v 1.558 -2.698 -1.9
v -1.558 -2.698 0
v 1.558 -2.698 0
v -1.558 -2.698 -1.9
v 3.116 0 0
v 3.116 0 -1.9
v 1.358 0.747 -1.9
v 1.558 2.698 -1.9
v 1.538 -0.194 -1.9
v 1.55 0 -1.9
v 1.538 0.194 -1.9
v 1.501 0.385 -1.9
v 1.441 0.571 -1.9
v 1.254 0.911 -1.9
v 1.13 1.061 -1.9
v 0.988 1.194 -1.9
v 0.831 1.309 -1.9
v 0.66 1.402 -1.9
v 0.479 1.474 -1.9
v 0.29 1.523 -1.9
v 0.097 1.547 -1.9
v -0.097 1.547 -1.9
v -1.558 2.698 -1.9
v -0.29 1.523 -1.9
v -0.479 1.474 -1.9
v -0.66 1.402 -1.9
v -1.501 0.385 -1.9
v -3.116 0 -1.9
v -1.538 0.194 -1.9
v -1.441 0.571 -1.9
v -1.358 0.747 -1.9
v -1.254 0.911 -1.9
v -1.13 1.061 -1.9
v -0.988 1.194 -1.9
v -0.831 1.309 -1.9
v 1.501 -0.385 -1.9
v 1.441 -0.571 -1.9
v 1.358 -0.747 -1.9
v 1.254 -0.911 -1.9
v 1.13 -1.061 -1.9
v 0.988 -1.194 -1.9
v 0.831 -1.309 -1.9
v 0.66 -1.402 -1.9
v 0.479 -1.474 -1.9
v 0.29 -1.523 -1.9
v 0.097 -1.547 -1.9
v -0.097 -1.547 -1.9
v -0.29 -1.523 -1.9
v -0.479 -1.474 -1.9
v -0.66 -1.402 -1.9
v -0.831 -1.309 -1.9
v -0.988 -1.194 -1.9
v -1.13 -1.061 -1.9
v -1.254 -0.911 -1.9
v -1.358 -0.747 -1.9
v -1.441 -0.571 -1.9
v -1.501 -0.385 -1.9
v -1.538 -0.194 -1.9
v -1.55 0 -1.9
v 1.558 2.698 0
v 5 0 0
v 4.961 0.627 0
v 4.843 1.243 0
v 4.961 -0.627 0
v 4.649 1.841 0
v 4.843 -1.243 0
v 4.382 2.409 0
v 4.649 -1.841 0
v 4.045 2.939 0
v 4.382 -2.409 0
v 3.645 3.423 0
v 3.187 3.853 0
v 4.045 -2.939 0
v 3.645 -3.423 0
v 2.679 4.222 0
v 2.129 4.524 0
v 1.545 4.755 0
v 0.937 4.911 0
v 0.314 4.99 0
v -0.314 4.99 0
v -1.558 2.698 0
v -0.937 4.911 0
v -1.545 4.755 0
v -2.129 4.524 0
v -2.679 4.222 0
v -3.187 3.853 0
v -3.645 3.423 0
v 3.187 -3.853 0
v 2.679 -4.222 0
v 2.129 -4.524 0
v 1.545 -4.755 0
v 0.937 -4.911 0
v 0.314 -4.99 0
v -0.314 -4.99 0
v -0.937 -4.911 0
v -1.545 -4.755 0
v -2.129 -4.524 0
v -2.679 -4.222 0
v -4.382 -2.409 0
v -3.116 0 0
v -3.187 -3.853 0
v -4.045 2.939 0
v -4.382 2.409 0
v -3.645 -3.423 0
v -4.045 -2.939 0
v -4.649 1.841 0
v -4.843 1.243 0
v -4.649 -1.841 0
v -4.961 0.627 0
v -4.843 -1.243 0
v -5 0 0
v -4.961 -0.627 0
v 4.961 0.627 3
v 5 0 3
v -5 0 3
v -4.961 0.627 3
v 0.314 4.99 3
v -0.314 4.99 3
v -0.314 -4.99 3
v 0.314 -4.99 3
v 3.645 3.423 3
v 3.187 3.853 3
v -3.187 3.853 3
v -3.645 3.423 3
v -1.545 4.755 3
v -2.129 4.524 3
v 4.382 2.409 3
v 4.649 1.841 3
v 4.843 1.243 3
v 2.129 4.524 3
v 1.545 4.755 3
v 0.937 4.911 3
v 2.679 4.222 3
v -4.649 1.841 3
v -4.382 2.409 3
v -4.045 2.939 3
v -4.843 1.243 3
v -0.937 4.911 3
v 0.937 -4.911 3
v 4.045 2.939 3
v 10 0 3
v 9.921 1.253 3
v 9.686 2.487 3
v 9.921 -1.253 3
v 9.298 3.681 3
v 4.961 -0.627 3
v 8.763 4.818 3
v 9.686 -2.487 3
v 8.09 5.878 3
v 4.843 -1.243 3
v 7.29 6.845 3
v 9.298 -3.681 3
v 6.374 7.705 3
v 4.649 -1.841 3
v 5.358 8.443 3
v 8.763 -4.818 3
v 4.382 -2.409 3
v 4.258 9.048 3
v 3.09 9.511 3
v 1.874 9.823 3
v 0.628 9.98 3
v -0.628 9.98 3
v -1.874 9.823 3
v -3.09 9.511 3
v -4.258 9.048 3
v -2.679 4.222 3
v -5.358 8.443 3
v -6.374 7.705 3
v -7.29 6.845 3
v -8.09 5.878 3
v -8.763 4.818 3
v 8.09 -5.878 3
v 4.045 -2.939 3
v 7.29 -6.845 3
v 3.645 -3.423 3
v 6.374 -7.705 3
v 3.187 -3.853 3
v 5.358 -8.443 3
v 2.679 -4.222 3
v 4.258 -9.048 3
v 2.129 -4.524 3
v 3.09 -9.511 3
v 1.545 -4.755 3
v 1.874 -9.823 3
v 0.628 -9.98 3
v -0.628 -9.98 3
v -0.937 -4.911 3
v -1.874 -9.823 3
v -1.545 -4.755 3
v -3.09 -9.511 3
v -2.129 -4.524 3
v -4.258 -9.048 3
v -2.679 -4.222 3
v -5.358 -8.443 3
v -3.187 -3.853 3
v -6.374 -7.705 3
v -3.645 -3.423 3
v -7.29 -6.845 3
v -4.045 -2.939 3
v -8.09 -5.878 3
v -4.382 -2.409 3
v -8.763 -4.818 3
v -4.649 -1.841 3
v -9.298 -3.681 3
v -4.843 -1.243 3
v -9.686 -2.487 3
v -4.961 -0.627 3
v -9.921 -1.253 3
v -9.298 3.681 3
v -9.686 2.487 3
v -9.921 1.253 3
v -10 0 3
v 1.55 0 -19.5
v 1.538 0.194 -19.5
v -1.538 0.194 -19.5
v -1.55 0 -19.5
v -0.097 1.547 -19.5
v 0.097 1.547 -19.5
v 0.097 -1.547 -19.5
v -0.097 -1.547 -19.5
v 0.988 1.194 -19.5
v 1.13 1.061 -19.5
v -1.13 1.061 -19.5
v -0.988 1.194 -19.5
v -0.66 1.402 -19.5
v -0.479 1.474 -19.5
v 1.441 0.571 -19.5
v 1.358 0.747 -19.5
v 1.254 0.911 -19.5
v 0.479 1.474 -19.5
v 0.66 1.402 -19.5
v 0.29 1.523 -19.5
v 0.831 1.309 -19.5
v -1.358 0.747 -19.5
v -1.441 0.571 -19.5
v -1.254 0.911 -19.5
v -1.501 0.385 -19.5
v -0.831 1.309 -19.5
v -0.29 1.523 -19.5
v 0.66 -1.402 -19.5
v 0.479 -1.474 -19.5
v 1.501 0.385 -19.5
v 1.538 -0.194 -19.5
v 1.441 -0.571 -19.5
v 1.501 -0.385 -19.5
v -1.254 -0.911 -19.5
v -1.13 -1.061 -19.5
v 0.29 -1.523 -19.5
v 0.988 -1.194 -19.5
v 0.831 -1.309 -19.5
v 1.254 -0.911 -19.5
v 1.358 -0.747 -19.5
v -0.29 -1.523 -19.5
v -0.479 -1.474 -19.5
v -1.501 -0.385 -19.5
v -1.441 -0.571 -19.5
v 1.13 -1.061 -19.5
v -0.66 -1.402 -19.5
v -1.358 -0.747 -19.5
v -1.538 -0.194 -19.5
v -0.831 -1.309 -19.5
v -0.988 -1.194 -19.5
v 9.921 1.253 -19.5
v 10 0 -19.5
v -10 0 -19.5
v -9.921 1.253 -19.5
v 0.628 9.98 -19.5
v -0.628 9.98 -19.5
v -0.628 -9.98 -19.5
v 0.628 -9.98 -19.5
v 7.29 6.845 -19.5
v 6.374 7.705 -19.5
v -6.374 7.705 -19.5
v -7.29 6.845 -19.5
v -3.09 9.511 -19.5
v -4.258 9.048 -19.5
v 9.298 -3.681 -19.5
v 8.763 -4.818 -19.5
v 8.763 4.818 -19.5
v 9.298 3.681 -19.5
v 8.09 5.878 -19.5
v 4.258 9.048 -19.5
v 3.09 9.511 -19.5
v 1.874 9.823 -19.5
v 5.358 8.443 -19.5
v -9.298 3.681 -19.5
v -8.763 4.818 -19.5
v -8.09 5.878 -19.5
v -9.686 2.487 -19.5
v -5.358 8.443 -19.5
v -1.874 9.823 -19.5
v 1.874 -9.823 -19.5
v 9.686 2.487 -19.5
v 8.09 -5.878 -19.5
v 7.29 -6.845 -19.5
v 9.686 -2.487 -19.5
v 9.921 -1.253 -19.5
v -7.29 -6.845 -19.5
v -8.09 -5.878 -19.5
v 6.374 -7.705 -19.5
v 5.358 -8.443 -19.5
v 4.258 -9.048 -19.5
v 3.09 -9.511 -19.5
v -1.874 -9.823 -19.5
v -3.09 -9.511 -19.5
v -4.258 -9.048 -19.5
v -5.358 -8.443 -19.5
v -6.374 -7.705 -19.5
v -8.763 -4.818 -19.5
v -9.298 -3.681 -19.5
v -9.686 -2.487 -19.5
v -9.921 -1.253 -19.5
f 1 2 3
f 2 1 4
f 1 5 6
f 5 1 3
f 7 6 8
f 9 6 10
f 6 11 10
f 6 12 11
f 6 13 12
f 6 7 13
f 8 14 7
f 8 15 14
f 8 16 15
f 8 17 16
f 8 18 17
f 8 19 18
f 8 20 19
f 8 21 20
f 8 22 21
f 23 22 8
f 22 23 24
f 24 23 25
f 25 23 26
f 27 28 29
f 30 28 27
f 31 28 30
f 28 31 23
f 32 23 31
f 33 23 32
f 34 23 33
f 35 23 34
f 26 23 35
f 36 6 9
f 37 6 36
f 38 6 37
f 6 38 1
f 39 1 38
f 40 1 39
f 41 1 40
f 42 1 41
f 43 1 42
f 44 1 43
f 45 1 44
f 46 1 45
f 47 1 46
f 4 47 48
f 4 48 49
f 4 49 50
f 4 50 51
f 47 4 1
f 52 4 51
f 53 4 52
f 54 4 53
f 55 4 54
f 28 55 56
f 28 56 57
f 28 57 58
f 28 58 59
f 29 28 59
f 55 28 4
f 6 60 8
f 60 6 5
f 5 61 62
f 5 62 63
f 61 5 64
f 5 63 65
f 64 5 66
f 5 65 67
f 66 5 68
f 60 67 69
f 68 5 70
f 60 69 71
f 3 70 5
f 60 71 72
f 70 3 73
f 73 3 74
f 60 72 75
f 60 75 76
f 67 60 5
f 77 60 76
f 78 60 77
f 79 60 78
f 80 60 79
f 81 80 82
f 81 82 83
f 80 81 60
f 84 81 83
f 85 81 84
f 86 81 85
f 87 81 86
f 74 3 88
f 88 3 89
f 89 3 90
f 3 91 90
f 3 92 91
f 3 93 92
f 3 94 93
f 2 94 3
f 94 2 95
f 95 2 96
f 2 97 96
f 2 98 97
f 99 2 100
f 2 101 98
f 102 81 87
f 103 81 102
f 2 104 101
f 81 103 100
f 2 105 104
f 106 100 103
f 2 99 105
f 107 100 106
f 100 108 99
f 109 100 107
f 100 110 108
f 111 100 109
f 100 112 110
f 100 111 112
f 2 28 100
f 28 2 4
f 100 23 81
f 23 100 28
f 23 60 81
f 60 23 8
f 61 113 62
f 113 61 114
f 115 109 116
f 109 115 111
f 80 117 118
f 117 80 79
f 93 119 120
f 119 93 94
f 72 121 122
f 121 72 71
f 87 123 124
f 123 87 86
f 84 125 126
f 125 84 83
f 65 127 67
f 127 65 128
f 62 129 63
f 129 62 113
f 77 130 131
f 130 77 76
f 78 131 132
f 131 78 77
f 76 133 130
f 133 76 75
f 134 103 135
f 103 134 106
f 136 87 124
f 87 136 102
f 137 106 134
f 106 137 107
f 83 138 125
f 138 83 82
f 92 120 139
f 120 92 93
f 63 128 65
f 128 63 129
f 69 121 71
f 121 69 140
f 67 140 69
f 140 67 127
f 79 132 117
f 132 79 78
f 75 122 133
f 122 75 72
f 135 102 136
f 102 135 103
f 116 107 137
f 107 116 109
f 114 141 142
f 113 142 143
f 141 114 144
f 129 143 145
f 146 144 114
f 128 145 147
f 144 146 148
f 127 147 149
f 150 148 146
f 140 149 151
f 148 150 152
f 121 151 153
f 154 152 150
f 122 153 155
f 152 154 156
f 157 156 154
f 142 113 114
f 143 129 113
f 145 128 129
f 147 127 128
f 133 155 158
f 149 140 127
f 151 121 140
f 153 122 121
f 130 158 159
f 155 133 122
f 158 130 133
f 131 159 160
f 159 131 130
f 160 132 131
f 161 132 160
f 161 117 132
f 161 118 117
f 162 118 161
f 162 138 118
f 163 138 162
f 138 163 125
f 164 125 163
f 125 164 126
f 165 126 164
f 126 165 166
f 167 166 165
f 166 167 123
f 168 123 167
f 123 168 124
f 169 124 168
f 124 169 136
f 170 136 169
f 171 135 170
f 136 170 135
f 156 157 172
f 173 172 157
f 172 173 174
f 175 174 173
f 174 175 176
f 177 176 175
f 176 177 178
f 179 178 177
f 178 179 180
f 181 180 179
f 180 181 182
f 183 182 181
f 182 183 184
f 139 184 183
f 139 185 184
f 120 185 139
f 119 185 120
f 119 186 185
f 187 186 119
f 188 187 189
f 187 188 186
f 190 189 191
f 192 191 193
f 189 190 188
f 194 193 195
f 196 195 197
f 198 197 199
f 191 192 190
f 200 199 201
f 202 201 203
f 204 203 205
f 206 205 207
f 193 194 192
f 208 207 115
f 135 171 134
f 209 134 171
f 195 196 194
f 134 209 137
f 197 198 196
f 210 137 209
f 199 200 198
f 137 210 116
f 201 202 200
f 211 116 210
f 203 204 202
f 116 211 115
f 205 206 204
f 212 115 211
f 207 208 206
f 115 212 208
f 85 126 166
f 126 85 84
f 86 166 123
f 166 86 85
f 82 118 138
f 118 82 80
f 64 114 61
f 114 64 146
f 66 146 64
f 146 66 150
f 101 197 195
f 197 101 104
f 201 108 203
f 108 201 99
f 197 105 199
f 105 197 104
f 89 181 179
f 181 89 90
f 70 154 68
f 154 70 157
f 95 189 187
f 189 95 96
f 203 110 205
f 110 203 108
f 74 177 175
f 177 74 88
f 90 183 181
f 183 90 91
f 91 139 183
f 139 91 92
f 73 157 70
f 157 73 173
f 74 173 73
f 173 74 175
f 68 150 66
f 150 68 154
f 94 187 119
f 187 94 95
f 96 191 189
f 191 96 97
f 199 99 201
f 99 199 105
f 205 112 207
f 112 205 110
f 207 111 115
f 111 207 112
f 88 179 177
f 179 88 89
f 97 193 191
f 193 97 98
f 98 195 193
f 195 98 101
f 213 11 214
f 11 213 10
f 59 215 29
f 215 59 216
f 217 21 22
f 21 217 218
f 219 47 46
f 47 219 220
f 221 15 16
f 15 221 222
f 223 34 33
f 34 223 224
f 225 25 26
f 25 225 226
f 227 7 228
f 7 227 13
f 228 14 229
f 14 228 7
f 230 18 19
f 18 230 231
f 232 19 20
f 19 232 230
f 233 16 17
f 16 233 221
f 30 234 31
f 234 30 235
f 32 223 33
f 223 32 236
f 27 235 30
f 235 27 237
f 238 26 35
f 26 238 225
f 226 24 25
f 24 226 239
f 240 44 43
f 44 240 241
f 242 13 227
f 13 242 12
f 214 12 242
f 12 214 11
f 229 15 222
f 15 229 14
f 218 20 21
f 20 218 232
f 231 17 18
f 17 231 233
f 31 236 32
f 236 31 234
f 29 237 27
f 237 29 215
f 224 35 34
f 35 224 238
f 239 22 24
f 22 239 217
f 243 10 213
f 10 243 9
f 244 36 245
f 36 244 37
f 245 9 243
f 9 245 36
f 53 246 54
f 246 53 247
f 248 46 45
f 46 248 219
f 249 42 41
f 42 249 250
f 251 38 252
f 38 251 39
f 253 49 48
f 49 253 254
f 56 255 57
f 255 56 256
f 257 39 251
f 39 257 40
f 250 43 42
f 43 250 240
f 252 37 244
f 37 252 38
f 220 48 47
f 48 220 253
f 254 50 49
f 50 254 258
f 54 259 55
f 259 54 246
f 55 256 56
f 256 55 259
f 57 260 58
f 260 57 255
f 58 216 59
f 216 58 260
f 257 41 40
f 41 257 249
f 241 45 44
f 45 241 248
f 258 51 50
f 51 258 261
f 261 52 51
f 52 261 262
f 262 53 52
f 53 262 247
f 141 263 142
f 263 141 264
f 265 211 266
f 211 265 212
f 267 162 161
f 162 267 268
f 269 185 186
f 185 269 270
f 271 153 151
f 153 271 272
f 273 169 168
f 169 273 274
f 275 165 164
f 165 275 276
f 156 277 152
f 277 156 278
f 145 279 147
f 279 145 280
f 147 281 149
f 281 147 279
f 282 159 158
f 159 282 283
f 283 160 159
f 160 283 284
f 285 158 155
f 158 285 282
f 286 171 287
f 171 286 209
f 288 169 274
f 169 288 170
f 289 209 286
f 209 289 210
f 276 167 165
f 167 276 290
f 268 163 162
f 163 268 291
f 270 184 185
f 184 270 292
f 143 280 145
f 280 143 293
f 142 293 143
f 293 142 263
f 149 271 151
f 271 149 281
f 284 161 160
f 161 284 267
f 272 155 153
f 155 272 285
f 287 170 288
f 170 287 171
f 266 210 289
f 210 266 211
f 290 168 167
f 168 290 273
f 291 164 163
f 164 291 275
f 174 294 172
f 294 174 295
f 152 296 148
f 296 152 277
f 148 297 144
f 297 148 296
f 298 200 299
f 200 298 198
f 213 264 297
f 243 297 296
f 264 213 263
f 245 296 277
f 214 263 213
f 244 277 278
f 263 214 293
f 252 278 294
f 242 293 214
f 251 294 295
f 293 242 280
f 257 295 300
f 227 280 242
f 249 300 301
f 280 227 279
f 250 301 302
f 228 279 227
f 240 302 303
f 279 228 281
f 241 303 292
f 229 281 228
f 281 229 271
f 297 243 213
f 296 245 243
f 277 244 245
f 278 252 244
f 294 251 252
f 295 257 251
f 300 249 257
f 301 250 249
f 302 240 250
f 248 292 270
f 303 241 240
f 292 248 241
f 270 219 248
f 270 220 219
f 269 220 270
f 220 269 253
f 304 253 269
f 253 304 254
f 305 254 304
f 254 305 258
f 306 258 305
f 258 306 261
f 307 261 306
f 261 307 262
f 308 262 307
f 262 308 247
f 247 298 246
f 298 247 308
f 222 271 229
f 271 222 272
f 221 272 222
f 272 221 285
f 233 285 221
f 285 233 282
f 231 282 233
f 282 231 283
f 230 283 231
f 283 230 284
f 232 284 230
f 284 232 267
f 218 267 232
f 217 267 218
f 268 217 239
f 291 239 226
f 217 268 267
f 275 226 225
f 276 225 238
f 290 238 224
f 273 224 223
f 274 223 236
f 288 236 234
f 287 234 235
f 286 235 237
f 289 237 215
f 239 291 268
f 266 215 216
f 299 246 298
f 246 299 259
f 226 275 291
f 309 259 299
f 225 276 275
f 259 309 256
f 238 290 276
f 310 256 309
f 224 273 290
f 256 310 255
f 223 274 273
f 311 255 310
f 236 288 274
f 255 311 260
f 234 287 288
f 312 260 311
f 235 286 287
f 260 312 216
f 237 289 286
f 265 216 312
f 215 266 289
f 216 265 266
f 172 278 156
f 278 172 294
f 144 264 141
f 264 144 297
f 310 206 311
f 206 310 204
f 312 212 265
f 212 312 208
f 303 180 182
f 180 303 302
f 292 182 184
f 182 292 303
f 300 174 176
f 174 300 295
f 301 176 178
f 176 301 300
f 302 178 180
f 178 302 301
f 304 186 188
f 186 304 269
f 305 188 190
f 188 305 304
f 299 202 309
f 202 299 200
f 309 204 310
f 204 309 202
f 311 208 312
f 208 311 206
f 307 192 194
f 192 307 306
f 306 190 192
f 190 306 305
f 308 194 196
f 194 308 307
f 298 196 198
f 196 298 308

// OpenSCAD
$fn = 50;


difference() {
	union() {
		translate(v = [0, 0, -19.5000000000]) {
			cylinder(h = 22.5000000000, r = 10.0000000000);
		}
	}
	union() {
		translate(v = [0, 0, 0]) {
			rotate(a = [0, 0, 0]) {
				difference() {
					union() {
						translate(v = [0, 0, -1.9000000000]) {
							linear_extrude(height = 1.9000000000) {
								polygon(points = [[3.1158000000, 0.0000000000], [1.5579000000, 2.6983619531], [-1.5579000000, 2.6983619531], [-3.1158000000, 0.0000000000], [-1.5579000000, -2.6983619531], [1.5579000000, -2.6983619531]]);
							}
						}
					}
					union();
				}
			}
		}
		#cylinder(h = 3, r = 5.0000000000);
		#translate(v = [0, 0, -100.0000000000]) {
			cylinder(h = 200, r = 1.5500000000);
		}
	}
}
